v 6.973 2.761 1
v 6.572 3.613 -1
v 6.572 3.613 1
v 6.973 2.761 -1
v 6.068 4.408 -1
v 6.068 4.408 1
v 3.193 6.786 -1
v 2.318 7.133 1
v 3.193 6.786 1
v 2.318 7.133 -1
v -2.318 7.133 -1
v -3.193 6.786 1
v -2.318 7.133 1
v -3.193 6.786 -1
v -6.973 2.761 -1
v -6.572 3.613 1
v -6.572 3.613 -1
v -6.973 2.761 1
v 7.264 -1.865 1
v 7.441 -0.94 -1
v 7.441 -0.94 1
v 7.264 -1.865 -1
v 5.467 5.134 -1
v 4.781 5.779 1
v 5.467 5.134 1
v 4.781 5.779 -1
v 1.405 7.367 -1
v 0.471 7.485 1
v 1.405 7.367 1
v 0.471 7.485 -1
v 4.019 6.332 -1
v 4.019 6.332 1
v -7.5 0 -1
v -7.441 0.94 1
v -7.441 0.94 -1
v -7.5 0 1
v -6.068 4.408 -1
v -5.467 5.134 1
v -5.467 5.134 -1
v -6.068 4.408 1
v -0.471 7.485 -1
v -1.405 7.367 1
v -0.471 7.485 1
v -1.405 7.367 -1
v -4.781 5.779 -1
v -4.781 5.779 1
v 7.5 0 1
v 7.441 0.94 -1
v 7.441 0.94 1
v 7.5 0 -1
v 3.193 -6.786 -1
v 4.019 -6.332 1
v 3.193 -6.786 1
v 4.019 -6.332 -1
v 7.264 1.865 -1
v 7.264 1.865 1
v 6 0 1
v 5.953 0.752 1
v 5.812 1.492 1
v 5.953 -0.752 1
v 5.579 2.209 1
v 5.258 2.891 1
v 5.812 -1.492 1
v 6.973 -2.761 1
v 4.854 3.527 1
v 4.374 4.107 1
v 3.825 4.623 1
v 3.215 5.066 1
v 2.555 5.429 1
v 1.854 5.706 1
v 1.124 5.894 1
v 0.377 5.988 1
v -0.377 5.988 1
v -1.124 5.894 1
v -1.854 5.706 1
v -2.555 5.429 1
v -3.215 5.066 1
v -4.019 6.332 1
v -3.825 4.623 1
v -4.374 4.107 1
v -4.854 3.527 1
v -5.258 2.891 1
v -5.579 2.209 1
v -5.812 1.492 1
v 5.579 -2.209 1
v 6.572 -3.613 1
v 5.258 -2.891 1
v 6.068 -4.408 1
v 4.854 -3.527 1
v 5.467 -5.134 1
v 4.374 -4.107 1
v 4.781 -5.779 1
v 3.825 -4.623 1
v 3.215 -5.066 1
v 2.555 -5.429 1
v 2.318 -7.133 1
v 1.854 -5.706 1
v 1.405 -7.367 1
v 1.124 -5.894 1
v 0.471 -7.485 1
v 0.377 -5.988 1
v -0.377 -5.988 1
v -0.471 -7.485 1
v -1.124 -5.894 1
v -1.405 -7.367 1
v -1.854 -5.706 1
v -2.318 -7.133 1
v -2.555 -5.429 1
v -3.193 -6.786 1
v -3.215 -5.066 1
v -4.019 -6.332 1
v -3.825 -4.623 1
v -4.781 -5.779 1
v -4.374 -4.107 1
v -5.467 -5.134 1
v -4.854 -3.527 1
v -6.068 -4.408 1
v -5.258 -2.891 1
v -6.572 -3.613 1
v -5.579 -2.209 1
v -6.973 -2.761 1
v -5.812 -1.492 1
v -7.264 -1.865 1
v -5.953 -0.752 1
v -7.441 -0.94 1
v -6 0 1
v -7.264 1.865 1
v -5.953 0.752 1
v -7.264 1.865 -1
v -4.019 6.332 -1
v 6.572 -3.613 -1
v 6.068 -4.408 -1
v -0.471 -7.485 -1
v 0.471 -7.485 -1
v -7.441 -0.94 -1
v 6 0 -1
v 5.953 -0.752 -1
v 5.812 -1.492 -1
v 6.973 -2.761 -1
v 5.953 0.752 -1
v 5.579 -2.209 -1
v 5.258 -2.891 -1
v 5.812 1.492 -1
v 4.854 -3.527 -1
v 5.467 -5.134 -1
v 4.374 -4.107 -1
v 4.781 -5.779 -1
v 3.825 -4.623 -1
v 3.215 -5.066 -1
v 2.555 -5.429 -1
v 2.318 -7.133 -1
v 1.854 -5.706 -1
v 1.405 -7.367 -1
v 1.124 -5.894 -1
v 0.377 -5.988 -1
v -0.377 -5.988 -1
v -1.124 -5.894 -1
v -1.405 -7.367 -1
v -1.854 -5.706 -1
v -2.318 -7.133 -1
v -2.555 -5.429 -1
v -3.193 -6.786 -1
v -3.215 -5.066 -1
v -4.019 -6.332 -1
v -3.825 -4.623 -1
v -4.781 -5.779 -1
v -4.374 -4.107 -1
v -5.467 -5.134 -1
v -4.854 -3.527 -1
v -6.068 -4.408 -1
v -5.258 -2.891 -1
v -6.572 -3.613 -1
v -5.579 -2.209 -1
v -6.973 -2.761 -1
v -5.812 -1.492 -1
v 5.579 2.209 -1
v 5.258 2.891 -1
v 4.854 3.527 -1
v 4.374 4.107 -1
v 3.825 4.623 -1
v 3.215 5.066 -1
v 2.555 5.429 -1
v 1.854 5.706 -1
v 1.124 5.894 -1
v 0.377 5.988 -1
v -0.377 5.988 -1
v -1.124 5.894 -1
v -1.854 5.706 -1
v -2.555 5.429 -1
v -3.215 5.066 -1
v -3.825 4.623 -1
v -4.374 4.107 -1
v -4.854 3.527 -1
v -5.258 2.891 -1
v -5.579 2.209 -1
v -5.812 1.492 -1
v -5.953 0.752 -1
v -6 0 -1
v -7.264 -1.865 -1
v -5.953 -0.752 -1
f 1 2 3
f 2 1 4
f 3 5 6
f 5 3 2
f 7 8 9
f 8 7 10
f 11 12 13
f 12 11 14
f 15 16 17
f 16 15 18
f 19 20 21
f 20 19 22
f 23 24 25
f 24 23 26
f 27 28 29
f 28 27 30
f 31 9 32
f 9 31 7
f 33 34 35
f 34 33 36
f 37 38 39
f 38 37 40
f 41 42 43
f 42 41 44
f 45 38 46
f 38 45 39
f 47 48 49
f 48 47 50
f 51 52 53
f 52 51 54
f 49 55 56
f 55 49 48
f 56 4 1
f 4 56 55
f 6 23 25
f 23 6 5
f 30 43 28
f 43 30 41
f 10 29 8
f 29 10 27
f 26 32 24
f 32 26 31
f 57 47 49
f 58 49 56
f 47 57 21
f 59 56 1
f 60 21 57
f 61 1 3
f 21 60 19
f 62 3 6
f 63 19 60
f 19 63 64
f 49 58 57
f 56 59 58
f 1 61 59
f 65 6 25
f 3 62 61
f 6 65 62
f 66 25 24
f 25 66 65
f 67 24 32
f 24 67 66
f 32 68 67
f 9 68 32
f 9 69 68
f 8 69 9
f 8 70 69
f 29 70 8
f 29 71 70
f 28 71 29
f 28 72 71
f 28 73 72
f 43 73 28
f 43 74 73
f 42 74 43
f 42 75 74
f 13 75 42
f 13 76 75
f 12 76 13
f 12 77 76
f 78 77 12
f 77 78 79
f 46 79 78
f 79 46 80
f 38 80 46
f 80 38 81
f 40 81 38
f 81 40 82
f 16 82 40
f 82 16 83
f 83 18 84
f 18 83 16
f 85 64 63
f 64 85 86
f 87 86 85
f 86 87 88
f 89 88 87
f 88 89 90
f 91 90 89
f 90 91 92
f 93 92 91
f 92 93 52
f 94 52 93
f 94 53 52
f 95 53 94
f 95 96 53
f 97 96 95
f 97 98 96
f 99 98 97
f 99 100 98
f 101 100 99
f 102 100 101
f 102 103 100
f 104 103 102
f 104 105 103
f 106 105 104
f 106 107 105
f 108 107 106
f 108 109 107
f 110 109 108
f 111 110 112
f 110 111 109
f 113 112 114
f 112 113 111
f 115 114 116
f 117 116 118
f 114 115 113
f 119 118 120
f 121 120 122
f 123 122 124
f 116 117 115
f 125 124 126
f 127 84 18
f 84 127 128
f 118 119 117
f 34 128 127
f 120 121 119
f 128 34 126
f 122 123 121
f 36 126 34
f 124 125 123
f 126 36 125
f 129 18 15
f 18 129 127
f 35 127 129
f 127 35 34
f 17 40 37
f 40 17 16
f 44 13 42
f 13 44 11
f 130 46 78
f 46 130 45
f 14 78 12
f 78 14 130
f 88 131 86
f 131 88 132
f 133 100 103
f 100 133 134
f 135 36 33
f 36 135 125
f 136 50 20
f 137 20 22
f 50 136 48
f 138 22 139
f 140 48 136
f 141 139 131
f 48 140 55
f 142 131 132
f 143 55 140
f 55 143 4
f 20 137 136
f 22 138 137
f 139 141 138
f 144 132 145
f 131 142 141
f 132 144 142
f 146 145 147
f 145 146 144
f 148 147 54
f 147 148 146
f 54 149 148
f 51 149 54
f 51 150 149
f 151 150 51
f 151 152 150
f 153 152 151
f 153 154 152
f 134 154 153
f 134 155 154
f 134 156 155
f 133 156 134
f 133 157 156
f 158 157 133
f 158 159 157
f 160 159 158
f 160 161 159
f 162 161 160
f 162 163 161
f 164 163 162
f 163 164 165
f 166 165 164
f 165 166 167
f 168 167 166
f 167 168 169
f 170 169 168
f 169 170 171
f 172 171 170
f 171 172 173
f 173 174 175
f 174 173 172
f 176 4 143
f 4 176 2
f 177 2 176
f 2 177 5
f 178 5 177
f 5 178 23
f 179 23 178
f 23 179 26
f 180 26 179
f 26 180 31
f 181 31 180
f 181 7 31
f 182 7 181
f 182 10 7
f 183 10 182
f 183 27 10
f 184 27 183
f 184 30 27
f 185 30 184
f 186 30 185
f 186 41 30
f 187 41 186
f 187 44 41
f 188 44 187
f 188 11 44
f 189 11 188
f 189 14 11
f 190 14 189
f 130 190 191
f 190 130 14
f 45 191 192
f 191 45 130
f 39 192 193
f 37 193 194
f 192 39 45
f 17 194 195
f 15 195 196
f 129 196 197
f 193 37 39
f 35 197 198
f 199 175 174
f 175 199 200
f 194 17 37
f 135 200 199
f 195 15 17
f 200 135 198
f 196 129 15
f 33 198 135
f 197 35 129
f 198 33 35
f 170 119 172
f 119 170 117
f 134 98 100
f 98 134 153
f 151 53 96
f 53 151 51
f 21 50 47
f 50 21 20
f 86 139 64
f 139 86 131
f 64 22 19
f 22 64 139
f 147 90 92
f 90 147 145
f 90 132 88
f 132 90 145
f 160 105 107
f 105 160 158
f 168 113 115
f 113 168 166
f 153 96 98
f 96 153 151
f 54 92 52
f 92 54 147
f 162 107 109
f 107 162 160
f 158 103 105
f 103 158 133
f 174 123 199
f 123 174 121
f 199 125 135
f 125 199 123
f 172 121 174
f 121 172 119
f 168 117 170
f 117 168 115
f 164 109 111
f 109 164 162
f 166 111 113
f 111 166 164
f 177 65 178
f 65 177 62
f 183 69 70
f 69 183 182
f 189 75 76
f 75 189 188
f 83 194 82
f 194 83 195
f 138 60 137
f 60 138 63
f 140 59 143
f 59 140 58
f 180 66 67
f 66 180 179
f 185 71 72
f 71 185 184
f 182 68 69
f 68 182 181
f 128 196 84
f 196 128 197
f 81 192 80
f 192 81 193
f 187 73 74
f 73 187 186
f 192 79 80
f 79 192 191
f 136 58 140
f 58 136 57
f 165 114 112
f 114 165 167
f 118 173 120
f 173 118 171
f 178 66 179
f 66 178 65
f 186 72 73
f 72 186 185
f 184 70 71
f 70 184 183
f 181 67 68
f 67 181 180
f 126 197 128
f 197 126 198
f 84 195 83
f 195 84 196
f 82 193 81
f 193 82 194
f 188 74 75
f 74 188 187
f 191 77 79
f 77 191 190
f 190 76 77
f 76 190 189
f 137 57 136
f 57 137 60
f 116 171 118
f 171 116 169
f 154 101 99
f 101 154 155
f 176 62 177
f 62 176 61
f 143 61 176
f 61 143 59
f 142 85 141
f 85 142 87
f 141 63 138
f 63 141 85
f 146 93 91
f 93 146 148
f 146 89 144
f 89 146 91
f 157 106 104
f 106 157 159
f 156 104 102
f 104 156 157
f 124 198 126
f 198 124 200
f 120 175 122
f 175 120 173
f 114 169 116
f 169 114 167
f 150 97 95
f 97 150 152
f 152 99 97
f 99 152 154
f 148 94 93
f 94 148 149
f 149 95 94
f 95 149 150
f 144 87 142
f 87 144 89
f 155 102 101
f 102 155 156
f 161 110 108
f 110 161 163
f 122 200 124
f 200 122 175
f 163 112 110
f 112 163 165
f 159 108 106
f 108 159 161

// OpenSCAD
$fn = 50;


difference() {
	union() {
		translate(v = [0, 0, -1.0000000000]) {
			cylinder(h = 2, r = 7.5000000000);
		}
	}
	union() {
		translate(v = [0, 0, -100.0000000000]) {
			cylinder(h = 200, r = 6);
		}
	}
}
